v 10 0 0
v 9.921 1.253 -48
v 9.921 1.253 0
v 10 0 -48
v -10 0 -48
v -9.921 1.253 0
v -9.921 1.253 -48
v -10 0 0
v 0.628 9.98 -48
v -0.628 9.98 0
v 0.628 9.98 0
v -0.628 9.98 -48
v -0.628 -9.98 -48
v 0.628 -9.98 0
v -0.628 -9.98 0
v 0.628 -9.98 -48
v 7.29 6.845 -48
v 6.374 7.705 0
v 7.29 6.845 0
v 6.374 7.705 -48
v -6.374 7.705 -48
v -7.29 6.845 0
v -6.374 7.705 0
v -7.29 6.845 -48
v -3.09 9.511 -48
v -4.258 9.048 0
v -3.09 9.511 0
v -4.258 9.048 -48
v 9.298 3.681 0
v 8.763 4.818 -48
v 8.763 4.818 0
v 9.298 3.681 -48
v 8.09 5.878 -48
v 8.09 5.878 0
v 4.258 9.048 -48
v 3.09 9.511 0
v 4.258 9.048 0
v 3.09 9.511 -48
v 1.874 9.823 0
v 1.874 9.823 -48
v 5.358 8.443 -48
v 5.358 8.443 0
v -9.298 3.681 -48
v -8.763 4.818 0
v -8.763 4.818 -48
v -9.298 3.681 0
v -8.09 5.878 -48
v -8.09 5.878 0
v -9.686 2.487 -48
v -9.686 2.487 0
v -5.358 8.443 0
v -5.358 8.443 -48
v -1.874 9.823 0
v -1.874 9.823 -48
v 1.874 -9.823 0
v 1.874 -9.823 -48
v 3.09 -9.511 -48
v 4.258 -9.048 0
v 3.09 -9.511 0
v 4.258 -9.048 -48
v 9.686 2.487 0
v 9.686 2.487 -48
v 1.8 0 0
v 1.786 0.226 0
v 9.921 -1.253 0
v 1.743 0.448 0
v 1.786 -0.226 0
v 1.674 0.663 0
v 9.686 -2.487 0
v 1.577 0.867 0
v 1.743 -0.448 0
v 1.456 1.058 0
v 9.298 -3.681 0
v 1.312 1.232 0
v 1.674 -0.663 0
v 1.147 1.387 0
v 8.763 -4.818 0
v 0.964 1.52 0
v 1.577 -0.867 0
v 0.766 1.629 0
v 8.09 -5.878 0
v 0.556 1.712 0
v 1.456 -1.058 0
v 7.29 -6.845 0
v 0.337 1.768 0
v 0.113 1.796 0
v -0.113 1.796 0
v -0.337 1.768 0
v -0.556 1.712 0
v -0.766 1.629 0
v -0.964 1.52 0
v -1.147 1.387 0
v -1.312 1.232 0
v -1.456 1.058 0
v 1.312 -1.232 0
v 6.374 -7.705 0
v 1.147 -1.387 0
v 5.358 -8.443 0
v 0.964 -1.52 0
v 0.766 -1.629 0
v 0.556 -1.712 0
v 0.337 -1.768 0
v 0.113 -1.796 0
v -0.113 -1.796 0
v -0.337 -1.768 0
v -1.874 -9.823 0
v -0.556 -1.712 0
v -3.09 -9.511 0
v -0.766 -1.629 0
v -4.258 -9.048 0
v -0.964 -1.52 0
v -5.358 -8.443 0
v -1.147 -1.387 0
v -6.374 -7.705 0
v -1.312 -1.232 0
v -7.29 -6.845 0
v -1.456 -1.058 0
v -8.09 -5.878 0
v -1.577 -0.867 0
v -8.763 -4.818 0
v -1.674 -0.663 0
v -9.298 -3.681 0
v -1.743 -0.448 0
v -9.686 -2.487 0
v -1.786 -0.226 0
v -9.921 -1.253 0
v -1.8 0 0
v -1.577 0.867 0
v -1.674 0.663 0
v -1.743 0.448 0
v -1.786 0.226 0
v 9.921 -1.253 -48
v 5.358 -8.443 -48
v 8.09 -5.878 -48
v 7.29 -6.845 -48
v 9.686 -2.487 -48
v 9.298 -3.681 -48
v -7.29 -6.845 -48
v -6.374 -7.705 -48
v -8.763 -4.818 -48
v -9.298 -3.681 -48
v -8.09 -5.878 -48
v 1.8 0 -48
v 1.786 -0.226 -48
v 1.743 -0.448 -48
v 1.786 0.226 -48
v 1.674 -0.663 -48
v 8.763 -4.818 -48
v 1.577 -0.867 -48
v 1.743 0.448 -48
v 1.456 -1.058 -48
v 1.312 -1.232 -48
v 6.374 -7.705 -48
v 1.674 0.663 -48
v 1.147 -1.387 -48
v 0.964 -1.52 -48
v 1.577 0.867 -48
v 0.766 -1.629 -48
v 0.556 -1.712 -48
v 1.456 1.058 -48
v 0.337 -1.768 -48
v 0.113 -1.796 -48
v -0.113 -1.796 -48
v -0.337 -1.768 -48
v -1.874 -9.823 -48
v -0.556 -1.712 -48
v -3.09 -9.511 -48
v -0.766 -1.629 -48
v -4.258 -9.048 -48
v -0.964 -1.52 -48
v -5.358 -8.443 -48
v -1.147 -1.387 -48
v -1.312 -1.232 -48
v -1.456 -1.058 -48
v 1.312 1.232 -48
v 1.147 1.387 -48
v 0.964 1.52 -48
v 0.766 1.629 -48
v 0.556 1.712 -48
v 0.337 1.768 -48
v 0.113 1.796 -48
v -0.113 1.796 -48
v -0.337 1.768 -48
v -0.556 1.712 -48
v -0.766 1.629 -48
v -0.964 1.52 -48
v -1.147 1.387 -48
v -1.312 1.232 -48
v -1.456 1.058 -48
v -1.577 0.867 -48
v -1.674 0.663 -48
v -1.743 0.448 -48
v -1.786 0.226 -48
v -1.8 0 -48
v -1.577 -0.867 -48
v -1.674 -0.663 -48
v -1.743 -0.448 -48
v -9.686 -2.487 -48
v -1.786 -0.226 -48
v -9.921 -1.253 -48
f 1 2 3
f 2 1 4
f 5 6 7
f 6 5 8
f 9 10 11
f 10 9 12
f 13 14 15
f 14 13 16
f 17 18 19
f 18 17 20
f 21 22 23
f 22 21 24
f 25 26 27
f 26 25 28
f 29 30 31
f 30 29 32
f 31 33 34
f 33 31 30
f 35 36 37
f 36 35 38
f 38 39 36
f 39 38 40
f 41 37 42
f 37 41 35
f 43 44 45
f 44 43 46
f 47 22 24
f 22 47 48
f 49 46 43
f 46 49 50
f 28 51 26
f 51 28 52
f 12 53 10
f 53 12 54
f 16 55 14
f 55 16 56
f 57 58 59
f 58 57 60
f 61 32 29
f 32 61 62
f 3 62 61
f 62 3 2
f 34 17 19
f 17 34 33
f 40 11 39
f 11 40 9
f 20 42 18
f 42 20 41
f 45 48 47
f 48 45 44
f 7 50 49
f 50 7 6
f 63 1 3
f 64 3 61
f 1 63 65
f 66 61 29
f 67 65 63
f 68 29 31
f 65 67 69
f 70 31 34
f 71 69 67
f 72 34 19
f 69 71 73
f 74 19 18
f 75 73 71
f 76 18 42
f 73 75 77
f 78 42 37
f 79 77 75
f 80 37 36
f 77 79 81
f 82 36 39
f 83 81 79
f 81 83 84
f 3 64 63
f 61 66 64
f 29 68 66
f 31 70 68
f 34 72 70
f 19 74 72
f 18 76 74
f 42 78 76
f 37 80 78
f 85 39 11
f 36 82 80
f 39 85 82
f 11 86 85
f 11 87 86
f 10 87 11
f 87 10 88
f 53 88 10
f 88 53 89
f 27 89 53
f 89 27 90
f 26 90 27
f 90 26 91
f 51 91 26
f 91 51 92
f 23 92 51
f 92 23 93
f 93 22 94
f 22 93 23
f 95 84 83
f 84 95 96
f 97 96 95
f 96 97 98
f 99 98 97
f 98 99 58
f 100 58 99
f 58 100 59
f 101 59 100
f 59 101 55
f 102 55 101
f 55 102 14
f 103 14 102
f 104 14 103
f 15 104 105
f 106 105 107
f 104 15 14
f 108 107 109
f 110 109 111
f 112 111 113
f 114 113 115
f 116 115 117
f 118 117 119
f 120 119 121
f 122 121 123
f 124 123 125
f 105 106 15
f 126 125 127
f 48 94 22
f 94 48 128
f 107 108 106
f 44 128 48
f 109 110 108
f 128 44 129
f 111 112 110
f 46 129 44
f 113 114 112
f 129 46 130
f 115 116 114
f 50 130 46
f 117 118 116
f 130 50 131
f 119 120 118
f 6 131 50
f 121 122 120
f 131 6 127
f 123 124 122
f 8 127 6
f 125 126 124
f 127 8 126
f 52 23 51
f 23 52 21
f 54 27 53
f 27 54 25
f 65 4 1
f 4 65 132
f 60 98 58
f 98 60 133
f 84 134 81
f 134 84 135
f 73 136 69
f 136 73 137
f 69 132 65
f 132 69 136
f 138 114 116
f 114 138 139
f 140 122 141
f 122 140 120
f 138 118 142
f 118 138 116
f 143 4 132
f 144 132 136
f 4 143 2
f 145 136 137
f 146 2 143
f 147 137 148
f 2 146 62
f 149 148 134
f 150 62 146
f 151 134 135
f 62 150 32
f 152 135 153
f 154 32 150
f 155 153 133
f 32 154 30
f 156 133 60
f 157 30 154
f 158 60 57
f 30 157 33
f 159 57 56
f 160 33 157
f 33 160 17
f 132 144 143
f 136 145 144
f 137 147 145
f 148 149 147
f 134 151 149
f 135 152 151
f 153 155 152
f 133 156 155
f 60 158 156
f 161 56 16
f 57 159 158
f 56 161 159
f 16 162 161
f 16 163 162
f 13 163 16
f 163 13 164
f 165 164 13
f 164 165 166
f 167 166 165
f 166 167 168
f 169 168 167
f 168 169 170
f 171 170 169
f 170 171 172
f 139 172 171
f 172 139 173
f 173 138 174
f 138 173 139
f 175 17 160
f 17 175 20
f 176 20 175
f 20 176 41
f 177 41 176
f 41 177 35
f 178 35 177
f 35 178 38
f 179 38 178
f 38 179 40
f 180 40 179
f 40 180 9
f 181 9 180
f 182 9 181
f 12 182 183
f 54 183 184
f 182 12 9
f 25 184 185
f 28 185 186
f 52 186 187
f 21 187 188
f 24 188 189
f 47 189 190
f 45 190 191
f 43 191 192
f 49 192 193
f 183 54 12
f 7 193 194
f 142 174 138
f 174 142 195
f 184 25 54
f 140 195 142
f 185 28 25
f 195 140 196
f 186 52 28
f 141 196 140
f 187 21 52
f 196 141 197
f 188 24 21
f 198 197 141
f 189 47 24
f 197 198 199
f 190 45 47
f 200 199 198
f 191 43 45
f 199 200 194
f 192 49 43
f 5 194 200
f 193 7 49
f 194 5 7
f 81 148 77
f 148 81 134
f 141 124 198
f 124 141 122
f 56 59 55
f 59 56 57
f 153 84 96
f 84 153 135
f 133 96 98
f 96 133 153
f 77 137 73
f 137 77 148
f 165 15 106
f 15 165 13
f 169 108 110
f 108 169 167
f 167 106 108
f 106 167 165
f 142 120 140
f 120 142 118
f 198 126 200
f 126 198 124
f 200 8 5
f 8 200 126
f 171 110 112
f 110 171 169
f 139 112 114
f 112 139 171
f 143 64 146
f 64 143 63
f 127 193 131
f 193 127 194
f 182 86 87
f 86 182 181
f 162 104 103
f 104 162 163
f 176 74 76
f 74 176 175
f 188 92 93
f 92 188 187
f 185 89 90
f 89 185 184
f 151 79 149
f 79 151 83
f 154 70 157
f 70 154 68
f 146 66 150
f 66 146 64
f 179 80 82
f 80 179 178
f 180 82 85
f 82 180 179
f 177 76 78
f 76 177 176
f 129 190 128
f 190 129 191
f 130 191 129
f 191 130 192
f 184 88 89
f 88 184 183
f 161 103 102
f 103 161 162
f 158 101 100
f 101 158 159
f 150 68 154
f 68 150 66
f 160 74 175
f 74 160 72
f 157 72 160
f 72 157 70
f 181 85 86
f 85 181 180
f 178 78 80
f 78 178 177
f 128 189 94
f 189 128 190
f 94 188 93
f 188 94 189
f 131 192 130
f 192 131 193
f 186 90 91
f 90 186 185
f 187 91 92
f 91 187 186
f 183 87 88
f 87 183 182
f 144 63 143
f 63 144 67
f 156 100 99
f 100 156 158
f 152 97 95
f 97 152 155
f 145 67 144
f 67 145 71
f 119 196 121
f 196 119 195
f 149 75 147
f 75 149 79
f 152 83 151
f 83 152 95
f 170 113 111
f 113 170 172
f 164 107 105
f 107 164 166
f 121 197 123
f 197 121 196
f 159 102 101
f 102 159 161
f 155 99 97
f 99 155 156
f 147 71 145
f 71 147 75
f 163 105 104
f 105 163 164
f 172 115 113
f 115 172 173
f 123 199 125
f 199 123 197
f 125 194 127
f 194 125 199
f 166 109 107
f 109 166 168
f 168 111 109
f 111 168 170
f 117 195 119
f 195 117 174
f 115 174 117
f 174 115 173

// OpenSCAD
$fn = 50;


difference() {
	union() {
		translate(v = [0, 0, -48.0000000000]) {
			cylinder(h = 48, r = 10.0000000000);
		}
	}
	union() {
		#translate(v = [0, 0, -48]) {
			cylinder(h = 48, r = 1.8000000000);
		}
	}
}
